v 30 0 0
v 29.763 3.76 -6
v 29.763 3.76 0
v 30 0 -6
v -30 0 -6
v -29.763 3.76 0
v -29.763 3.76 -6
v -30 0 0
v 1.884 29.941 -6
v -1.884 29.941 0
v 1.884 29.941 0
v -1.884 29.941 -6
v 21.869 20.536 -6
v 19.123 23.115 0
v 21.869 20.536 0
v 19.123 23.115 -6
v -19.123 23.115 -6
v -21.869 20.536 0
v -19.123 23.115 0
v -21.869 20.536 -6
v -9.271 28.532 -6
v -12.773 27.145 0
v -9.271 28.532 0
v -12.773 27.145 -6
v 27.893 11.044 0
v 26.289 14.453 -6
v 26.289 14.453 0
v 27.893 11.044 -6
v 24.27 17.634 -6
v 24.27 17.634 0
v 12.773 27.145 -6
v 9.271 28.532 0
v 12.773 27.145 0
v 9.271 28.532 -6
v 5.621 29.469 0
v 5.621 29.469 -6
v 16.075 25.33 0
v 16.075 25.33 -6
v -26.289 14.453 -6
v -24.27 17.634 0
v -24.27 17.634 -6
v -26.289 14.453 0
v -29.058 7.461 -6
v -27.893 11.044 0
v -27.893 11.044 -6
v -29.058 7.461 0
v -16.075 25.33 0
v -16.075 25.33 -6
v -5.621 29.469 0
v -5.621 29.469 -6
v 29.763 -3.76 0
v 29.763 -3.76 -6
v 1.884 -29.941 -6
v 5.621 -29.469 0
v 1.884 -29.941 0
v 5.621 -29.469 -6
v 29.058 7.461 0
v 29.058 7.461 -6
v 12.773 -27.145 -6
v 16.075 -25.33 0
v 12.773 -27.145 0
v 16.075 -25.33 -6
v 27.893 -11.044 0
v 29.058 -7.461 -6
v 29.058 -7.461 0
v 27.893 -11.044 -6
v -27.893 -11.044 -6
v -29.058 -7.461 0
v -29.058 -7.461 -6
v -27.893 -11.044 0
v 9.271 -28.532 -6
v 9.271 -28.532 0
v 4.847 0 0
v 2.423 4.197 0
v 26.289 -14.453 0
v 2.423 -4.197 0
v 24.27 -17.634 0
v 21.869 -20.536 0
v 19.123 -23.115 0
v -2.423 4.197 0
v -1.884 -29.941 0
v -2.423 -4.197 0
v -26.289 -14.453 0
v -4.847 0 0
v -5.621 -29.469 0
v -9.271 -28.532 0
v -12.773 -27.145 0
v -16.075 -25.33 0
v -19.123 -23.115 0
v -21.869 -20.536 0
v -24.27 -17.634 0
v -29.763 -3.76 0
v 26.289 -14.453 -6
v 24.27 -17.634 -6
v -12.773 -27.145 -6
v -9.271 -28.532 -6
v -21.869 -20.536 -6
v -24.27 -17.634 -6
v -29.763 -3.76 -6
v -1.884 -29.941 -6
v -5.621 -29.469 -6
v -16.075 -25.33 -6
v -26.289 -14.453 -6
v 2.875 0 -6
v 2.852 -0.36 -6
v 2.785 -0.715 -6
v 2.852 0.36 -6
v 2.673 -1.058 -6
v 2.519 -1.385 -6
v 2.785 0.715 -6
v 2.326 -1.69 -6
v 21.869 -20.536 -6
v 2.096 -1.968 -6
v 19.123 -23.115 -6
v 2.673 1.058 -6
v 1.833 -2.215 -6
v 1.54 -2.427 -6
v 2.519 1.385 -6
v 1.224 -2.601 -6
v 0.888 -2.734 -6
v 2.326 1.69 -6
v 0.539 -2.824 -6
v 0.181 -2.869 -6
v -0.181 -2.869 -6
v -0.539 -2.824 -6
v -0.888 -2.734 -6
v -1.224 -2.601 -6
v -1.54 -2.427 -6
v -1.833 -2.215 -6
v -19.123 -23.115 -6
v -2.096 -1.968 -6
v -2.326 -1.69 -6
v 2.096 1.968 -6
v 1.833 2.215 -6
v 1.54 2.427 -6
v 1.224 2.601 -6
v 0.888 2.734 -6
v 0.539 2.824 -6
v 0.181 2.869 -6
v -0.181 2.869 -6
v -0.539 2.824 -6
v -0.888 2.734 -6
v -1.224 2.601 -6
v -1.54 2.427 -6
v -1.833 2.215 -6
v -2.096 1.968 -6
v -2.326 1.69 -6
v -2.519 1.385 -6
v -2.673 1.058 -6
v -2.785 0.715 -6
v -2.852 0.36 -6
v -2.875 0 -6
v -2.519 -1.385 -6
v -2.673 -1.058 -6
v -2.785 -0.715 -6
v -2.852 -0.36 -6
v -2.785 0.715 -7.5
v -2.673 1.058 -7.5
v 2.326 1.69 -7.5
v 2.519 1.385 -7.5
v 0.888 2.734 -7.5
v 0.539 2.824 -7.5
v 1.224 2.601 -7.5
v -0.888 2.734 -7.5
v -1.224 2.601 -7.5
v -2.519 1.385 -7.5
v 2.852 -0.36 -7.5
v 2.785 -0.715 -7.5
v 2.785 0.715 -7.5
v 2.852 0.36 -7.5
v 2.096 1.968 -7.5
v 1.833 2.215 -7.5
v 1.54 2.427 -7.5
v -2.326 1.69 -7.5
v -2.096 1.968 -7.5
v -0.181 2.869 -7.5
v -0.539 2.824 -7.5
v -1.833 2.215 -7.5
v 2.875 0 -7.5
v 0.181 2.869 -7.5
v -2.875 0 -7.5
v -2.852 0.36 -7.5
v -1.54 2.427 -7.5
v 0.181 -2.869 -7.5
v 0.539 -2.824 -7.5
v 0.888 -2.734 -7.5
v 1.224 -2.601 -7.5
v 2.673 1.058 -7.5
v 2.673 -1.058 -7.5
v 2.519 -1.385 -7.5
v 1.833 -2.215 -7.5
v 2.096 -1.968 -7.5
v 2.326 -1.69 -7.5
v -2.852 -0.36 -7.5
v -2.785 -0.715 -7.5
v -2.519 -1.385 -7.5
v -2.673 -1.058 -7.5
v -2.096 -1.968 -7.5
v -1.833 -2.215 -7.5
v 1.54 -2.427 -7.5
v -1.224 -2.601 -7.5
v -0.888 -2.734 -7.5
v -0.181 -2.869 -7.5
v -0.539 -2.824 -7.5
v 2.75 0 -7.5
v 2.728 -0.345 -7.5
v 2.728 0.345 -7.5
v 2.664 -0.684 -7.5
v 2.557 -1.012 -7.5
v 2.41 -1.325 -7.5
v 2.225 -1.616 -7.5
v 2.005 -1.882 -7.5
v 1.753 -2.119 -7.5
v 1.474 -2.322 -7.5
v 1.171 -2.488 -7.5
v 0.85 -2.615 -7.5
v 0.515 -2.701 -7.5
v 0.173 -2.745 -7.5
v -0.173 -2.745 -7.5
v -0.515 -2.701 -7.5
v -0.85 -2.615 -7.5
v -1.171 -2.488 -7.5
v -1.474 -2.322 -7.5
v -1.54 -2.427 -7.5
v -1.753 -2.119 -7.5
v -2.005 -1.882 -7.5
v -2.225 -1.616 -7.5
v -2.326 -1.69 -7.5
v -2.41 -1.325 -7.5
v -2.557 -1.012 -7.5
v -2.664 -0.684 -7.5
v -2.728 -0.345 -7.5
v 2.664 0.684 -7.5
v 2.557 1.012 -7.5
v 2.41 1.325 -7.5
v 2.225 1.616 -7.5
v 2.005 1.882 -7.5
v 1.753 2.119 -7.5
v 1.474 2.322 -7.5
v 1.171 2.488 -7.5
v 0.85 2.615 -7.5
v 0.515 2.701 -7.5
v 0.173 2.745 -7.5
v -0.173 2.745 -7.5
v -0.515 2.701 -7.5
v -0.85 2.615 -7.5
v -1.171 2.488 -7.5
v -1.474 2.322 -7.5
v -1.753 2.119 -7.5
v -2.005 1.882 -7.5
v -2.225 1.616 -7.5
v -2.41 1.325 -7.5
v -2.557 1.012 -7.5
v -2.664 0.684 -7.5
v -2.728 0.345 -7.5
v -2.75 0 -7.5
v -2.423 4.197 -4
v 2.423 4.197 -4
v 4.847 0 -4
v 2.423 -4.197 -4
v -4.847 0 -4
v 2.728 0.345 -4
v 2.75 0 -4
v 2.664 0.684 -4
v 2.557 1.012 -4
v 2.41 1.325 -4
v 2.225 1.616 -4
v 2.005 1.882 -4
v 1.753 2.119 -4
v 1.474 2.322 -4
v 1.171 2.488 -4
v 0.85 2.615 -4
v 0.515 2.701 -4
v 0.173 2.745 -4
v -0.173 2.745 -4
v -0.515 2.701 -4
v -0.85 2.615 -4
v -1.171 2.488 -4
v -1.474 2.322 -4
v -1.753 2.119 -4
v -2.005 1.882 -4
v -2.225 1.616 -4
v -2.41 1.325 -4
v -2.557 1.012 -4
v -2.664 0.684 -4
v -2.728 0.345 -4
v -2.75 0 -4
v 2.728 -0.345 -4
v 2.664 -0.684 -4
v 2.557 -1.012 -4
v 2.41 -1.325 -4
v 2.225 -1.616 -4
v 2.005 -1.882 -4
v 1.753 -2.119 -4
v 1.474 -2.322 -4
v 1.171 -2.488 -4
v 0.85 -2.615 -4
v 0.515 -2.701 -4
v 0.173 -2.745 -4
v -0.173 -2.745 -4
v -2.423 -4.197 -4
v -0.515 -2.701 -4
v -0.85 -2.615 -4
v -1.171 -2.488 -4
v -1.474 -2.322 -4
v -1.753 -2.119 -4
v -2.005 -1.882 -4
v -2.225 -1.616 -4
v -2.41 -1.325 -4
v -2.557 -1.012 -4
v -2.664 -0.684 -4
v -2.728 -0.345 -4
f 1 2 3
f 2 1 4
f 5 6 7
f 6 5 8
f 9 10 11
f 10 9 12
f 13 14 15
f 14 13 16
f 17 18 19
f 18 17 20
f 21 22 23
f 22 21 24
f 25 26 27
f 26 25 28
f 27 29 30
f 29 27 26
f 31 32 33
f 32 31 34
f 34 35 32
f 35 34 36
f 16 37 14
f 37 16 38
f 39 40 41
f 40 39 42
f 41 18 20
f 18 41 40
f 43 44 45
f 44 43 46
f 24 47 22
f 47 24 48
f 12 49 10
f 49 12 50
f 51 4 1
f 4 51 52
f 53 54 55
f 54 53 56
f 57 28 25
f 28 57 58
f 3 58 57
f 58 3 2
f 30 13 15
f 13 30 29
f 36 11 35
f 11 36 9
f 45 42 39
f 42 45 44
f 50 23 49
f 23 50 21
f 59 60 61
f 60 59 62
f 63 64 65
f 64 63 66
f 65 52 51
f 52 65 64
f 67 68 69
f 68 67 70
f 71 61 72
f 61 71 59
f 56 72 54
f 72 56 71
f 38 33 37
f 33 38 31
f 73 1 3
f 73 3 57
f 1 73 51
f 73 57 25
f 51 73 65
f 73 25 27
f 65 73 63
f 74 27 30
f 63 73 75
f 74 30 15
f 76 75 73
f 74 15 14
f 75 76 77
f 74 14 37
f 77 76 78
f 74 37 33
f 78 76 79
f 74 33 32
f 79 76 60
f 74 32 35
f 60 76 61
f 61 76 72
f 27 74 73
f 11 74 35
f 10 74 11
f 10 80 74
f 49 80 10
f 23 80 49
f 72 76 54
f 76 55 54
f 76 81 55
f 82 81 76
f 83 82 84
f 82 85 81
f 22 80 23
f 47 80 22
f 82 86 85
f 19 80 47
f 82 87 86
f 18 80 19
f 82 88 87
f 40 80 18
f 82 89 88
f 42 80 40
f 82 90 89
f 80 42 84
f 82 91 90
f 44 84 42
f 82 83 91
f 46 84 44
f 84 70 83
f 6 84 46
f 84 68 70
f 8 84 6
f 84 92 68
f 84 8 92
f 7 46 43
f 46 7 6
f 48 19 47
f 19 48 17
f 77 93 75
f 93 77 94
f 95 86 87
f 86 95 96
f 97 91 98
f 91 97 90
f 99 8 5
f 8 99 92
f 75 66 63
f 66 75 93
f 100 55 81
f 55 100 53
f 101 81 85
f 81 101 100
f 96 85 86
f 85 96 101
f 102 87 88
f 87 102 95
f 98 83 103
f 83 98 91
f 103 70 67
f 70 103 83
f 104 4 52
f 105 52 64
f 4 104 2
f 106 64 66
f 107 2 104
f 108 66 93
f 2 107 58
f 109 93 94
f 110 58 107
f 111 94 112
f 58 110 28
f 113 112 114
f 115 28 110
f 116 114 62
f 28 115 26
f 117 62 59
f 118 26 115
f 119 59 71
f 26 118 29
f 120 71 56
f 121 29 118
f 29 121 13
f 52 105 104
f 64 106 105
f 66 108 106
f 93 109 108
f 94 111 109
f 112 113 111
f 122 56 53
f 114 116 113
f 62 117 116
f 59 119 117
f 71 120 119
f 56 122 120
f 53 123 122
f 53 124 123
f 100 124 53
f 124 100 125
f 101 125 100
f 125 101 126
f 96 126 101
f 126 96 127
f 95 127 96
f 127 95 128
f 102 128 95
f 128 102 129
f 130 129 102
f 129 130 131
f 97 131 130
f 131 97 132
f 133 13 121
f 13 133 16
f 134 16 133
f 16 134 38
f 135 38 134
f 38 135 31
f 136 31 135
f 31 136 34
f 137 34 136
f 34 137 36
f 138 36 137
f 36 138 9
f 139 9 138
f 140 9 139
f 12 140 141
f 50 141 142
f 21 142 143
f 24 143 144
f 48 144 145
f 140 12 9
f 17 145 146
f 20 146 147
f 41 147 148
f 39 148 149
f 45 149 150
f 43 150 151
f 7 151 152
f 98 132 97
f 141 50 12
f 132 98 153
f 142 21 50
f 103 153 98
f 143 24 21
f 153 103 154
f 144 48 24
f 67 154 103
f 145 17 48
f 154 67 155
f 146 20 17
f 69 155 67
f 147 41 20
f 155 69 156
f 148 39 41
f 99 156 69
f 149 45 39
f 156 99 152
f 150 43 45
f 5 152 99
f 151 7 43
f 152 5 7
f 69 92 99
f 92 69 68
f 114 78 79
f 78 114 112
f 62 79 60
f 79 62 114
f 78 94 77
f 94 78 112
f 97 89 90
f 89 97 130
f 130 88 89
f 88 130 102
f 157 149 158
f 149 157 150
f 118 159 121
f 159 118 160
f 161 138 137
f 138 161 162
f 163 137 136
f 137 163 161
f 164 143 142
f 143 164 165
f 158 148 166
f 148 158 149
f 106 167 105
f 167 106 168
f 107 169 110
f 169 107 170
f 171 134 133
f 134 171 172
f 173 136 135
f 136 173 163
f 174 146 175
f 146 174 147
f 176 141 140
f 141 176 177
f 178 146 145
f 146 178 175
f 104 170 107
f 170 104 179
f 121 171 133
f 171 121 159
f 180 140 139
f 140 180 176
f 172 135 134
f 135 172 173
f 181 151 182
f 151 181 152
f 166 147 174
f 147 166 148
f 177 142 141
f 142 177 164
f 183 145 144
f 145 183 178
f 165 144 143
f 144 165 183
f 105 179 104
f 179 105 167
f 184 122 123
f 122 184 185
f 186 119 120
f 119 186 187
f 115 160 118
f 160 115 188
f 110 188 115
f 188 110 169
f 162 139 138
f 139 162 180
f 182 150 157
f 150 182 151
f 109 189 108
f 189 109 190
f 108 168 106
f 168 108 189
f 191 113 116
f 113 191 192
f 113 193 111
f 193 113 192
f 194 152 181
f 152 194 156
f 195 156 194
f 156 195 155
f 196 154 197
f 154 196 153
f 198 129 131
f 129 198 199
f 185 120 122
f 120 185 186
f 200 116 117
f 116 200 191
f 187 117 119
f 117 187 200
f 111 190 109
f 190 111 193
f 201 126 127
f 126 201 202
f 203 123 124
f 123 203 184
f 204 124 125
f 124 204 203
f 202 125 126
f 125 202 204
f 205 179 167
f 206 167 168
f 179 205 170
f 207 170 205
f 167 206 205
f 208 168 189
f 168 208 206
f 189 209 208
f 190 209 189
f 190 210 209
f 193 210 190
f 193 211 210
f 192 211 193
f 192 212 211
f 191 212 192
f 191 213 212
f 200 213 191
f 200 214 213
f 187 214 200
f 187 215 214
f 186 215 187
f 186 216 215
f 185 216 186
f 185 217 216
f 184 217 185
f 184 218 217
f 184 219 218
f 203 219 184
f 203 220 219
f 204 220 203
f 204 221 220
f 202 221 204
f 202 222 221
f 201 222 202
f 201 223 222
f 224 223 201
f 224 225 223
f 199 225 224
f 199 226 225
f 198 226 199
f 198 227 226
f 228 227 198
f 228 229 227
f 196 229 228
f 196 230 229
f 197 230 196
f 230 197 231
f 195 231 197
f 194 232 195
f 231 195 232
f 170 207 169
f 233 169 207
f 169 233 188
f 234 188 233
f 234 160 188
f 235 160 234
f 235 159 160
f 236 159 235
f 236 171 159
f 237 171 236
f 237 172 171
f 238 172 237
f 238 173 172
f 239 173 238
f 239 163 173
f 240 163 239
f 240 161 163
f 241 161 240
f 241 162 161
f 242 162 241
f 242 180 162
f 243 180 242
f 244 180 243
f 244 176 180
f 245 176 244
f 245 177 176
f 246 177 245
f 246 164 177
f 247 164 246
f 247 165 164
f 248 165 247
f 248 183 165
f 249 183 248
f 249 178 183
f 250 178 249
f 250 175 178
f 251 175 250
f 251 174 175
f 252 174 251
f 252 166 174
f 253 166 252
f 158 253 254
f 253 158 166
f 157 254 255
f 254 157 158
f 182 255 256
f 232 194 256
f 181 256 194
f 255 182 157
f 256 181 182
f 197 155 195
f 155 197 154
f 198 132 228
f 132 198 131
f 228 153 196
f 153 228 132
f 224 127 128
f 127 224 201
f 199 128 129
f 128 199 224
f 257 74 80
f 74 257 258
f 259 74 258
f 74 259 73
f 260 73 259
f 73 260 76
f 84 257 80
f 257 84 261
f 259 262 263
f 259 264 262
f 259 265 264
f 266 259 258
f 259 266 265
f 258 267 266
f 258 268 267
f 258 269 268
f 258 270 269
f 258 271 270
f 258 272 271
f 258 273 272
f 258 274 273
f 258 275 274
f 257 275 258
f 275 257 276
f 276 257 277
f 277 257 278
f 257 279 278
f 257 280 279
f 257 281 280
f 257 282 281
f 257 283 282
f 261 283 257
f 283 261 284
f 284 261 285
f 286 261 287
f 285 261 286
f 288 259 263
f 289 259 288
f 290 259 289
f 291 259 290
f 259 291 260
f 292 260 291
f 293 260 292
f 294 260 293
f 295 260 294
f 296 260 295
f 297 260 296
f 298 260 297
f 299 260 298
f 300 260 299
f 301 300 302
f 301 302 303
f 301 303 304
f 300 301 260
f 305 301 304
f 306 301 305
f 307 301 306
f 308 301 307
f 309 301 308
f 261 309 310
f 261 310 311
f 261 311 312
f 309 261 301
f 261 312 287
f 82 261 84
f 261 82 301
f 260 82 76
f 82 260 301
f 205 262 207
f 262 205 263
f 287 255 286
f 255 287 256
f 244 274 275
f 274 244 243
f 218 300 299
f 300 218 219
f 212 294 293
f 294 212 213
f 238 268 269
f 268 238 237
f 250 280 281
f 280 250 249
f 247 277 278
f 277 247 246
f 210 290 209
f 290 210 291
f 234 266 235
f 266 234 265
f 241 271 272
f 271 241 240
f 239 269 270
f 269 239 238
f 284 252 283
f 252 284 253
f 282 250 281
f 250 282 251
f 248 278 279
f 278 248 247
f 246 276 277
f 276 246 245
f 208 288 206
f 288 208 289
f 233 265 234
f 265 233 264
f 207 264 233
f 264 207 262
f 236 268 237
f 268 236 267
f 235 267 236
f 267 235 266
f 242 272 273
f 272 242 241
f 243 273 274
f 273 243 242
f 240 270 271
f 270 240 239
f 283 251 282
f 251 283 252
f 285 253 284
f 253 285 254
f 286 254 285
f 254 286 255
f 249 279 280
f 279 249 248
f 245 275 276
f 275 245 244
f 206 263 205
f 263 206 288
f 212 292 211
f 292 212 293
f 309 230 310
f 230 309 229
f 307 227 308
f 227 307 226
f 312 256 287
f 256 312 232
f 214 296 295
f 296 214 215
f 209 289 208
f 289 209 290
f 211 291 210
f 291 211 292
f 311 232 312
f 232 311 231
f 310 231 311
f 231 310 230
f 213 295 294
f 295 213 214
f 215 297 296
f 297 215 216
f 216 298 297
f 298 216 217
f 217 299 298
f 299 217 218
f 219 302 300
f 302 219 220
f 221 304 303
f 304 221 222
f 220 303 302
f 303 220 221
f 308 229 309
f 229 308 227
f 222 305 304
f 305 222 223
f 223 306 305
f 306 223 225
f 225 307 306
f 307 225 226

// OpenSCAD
$fn = 50;

difference() {
	union() {
		translate(v = [0, 0, -6.0]) {
			cylinder(h = 6.0, r = 30.0);
		}
		#translate(v = [0, 0, -7.5]) {
			cylinder(h = 7.5, r = 2.875);
		}
	}
	union() {
		translate(v = [0, 0, 0]) {
			rotate(a = [0, 0, 0]) {
				difference() {
					union() {
						translate(v = [0, 0, -4]) {
							linear_extrude(height = 4) {
								polygon(points = [[4.8468, 0.0], [2.4234000000000004, 4.197451927062417], [-2.423399999999999, 4.197451927062417], [-4.8468, 5.935618106107392e-16], [-2.423400000000002, -4.197451927062416], [2.423399999999997, -4.197451927062419]]);
							}
						}
					}
					union();
				}
			}
		}
		#translate(v = [0, 0, -100.0]) {
			cylinder(h = 200, r = 2.75);
		}
	}
}
